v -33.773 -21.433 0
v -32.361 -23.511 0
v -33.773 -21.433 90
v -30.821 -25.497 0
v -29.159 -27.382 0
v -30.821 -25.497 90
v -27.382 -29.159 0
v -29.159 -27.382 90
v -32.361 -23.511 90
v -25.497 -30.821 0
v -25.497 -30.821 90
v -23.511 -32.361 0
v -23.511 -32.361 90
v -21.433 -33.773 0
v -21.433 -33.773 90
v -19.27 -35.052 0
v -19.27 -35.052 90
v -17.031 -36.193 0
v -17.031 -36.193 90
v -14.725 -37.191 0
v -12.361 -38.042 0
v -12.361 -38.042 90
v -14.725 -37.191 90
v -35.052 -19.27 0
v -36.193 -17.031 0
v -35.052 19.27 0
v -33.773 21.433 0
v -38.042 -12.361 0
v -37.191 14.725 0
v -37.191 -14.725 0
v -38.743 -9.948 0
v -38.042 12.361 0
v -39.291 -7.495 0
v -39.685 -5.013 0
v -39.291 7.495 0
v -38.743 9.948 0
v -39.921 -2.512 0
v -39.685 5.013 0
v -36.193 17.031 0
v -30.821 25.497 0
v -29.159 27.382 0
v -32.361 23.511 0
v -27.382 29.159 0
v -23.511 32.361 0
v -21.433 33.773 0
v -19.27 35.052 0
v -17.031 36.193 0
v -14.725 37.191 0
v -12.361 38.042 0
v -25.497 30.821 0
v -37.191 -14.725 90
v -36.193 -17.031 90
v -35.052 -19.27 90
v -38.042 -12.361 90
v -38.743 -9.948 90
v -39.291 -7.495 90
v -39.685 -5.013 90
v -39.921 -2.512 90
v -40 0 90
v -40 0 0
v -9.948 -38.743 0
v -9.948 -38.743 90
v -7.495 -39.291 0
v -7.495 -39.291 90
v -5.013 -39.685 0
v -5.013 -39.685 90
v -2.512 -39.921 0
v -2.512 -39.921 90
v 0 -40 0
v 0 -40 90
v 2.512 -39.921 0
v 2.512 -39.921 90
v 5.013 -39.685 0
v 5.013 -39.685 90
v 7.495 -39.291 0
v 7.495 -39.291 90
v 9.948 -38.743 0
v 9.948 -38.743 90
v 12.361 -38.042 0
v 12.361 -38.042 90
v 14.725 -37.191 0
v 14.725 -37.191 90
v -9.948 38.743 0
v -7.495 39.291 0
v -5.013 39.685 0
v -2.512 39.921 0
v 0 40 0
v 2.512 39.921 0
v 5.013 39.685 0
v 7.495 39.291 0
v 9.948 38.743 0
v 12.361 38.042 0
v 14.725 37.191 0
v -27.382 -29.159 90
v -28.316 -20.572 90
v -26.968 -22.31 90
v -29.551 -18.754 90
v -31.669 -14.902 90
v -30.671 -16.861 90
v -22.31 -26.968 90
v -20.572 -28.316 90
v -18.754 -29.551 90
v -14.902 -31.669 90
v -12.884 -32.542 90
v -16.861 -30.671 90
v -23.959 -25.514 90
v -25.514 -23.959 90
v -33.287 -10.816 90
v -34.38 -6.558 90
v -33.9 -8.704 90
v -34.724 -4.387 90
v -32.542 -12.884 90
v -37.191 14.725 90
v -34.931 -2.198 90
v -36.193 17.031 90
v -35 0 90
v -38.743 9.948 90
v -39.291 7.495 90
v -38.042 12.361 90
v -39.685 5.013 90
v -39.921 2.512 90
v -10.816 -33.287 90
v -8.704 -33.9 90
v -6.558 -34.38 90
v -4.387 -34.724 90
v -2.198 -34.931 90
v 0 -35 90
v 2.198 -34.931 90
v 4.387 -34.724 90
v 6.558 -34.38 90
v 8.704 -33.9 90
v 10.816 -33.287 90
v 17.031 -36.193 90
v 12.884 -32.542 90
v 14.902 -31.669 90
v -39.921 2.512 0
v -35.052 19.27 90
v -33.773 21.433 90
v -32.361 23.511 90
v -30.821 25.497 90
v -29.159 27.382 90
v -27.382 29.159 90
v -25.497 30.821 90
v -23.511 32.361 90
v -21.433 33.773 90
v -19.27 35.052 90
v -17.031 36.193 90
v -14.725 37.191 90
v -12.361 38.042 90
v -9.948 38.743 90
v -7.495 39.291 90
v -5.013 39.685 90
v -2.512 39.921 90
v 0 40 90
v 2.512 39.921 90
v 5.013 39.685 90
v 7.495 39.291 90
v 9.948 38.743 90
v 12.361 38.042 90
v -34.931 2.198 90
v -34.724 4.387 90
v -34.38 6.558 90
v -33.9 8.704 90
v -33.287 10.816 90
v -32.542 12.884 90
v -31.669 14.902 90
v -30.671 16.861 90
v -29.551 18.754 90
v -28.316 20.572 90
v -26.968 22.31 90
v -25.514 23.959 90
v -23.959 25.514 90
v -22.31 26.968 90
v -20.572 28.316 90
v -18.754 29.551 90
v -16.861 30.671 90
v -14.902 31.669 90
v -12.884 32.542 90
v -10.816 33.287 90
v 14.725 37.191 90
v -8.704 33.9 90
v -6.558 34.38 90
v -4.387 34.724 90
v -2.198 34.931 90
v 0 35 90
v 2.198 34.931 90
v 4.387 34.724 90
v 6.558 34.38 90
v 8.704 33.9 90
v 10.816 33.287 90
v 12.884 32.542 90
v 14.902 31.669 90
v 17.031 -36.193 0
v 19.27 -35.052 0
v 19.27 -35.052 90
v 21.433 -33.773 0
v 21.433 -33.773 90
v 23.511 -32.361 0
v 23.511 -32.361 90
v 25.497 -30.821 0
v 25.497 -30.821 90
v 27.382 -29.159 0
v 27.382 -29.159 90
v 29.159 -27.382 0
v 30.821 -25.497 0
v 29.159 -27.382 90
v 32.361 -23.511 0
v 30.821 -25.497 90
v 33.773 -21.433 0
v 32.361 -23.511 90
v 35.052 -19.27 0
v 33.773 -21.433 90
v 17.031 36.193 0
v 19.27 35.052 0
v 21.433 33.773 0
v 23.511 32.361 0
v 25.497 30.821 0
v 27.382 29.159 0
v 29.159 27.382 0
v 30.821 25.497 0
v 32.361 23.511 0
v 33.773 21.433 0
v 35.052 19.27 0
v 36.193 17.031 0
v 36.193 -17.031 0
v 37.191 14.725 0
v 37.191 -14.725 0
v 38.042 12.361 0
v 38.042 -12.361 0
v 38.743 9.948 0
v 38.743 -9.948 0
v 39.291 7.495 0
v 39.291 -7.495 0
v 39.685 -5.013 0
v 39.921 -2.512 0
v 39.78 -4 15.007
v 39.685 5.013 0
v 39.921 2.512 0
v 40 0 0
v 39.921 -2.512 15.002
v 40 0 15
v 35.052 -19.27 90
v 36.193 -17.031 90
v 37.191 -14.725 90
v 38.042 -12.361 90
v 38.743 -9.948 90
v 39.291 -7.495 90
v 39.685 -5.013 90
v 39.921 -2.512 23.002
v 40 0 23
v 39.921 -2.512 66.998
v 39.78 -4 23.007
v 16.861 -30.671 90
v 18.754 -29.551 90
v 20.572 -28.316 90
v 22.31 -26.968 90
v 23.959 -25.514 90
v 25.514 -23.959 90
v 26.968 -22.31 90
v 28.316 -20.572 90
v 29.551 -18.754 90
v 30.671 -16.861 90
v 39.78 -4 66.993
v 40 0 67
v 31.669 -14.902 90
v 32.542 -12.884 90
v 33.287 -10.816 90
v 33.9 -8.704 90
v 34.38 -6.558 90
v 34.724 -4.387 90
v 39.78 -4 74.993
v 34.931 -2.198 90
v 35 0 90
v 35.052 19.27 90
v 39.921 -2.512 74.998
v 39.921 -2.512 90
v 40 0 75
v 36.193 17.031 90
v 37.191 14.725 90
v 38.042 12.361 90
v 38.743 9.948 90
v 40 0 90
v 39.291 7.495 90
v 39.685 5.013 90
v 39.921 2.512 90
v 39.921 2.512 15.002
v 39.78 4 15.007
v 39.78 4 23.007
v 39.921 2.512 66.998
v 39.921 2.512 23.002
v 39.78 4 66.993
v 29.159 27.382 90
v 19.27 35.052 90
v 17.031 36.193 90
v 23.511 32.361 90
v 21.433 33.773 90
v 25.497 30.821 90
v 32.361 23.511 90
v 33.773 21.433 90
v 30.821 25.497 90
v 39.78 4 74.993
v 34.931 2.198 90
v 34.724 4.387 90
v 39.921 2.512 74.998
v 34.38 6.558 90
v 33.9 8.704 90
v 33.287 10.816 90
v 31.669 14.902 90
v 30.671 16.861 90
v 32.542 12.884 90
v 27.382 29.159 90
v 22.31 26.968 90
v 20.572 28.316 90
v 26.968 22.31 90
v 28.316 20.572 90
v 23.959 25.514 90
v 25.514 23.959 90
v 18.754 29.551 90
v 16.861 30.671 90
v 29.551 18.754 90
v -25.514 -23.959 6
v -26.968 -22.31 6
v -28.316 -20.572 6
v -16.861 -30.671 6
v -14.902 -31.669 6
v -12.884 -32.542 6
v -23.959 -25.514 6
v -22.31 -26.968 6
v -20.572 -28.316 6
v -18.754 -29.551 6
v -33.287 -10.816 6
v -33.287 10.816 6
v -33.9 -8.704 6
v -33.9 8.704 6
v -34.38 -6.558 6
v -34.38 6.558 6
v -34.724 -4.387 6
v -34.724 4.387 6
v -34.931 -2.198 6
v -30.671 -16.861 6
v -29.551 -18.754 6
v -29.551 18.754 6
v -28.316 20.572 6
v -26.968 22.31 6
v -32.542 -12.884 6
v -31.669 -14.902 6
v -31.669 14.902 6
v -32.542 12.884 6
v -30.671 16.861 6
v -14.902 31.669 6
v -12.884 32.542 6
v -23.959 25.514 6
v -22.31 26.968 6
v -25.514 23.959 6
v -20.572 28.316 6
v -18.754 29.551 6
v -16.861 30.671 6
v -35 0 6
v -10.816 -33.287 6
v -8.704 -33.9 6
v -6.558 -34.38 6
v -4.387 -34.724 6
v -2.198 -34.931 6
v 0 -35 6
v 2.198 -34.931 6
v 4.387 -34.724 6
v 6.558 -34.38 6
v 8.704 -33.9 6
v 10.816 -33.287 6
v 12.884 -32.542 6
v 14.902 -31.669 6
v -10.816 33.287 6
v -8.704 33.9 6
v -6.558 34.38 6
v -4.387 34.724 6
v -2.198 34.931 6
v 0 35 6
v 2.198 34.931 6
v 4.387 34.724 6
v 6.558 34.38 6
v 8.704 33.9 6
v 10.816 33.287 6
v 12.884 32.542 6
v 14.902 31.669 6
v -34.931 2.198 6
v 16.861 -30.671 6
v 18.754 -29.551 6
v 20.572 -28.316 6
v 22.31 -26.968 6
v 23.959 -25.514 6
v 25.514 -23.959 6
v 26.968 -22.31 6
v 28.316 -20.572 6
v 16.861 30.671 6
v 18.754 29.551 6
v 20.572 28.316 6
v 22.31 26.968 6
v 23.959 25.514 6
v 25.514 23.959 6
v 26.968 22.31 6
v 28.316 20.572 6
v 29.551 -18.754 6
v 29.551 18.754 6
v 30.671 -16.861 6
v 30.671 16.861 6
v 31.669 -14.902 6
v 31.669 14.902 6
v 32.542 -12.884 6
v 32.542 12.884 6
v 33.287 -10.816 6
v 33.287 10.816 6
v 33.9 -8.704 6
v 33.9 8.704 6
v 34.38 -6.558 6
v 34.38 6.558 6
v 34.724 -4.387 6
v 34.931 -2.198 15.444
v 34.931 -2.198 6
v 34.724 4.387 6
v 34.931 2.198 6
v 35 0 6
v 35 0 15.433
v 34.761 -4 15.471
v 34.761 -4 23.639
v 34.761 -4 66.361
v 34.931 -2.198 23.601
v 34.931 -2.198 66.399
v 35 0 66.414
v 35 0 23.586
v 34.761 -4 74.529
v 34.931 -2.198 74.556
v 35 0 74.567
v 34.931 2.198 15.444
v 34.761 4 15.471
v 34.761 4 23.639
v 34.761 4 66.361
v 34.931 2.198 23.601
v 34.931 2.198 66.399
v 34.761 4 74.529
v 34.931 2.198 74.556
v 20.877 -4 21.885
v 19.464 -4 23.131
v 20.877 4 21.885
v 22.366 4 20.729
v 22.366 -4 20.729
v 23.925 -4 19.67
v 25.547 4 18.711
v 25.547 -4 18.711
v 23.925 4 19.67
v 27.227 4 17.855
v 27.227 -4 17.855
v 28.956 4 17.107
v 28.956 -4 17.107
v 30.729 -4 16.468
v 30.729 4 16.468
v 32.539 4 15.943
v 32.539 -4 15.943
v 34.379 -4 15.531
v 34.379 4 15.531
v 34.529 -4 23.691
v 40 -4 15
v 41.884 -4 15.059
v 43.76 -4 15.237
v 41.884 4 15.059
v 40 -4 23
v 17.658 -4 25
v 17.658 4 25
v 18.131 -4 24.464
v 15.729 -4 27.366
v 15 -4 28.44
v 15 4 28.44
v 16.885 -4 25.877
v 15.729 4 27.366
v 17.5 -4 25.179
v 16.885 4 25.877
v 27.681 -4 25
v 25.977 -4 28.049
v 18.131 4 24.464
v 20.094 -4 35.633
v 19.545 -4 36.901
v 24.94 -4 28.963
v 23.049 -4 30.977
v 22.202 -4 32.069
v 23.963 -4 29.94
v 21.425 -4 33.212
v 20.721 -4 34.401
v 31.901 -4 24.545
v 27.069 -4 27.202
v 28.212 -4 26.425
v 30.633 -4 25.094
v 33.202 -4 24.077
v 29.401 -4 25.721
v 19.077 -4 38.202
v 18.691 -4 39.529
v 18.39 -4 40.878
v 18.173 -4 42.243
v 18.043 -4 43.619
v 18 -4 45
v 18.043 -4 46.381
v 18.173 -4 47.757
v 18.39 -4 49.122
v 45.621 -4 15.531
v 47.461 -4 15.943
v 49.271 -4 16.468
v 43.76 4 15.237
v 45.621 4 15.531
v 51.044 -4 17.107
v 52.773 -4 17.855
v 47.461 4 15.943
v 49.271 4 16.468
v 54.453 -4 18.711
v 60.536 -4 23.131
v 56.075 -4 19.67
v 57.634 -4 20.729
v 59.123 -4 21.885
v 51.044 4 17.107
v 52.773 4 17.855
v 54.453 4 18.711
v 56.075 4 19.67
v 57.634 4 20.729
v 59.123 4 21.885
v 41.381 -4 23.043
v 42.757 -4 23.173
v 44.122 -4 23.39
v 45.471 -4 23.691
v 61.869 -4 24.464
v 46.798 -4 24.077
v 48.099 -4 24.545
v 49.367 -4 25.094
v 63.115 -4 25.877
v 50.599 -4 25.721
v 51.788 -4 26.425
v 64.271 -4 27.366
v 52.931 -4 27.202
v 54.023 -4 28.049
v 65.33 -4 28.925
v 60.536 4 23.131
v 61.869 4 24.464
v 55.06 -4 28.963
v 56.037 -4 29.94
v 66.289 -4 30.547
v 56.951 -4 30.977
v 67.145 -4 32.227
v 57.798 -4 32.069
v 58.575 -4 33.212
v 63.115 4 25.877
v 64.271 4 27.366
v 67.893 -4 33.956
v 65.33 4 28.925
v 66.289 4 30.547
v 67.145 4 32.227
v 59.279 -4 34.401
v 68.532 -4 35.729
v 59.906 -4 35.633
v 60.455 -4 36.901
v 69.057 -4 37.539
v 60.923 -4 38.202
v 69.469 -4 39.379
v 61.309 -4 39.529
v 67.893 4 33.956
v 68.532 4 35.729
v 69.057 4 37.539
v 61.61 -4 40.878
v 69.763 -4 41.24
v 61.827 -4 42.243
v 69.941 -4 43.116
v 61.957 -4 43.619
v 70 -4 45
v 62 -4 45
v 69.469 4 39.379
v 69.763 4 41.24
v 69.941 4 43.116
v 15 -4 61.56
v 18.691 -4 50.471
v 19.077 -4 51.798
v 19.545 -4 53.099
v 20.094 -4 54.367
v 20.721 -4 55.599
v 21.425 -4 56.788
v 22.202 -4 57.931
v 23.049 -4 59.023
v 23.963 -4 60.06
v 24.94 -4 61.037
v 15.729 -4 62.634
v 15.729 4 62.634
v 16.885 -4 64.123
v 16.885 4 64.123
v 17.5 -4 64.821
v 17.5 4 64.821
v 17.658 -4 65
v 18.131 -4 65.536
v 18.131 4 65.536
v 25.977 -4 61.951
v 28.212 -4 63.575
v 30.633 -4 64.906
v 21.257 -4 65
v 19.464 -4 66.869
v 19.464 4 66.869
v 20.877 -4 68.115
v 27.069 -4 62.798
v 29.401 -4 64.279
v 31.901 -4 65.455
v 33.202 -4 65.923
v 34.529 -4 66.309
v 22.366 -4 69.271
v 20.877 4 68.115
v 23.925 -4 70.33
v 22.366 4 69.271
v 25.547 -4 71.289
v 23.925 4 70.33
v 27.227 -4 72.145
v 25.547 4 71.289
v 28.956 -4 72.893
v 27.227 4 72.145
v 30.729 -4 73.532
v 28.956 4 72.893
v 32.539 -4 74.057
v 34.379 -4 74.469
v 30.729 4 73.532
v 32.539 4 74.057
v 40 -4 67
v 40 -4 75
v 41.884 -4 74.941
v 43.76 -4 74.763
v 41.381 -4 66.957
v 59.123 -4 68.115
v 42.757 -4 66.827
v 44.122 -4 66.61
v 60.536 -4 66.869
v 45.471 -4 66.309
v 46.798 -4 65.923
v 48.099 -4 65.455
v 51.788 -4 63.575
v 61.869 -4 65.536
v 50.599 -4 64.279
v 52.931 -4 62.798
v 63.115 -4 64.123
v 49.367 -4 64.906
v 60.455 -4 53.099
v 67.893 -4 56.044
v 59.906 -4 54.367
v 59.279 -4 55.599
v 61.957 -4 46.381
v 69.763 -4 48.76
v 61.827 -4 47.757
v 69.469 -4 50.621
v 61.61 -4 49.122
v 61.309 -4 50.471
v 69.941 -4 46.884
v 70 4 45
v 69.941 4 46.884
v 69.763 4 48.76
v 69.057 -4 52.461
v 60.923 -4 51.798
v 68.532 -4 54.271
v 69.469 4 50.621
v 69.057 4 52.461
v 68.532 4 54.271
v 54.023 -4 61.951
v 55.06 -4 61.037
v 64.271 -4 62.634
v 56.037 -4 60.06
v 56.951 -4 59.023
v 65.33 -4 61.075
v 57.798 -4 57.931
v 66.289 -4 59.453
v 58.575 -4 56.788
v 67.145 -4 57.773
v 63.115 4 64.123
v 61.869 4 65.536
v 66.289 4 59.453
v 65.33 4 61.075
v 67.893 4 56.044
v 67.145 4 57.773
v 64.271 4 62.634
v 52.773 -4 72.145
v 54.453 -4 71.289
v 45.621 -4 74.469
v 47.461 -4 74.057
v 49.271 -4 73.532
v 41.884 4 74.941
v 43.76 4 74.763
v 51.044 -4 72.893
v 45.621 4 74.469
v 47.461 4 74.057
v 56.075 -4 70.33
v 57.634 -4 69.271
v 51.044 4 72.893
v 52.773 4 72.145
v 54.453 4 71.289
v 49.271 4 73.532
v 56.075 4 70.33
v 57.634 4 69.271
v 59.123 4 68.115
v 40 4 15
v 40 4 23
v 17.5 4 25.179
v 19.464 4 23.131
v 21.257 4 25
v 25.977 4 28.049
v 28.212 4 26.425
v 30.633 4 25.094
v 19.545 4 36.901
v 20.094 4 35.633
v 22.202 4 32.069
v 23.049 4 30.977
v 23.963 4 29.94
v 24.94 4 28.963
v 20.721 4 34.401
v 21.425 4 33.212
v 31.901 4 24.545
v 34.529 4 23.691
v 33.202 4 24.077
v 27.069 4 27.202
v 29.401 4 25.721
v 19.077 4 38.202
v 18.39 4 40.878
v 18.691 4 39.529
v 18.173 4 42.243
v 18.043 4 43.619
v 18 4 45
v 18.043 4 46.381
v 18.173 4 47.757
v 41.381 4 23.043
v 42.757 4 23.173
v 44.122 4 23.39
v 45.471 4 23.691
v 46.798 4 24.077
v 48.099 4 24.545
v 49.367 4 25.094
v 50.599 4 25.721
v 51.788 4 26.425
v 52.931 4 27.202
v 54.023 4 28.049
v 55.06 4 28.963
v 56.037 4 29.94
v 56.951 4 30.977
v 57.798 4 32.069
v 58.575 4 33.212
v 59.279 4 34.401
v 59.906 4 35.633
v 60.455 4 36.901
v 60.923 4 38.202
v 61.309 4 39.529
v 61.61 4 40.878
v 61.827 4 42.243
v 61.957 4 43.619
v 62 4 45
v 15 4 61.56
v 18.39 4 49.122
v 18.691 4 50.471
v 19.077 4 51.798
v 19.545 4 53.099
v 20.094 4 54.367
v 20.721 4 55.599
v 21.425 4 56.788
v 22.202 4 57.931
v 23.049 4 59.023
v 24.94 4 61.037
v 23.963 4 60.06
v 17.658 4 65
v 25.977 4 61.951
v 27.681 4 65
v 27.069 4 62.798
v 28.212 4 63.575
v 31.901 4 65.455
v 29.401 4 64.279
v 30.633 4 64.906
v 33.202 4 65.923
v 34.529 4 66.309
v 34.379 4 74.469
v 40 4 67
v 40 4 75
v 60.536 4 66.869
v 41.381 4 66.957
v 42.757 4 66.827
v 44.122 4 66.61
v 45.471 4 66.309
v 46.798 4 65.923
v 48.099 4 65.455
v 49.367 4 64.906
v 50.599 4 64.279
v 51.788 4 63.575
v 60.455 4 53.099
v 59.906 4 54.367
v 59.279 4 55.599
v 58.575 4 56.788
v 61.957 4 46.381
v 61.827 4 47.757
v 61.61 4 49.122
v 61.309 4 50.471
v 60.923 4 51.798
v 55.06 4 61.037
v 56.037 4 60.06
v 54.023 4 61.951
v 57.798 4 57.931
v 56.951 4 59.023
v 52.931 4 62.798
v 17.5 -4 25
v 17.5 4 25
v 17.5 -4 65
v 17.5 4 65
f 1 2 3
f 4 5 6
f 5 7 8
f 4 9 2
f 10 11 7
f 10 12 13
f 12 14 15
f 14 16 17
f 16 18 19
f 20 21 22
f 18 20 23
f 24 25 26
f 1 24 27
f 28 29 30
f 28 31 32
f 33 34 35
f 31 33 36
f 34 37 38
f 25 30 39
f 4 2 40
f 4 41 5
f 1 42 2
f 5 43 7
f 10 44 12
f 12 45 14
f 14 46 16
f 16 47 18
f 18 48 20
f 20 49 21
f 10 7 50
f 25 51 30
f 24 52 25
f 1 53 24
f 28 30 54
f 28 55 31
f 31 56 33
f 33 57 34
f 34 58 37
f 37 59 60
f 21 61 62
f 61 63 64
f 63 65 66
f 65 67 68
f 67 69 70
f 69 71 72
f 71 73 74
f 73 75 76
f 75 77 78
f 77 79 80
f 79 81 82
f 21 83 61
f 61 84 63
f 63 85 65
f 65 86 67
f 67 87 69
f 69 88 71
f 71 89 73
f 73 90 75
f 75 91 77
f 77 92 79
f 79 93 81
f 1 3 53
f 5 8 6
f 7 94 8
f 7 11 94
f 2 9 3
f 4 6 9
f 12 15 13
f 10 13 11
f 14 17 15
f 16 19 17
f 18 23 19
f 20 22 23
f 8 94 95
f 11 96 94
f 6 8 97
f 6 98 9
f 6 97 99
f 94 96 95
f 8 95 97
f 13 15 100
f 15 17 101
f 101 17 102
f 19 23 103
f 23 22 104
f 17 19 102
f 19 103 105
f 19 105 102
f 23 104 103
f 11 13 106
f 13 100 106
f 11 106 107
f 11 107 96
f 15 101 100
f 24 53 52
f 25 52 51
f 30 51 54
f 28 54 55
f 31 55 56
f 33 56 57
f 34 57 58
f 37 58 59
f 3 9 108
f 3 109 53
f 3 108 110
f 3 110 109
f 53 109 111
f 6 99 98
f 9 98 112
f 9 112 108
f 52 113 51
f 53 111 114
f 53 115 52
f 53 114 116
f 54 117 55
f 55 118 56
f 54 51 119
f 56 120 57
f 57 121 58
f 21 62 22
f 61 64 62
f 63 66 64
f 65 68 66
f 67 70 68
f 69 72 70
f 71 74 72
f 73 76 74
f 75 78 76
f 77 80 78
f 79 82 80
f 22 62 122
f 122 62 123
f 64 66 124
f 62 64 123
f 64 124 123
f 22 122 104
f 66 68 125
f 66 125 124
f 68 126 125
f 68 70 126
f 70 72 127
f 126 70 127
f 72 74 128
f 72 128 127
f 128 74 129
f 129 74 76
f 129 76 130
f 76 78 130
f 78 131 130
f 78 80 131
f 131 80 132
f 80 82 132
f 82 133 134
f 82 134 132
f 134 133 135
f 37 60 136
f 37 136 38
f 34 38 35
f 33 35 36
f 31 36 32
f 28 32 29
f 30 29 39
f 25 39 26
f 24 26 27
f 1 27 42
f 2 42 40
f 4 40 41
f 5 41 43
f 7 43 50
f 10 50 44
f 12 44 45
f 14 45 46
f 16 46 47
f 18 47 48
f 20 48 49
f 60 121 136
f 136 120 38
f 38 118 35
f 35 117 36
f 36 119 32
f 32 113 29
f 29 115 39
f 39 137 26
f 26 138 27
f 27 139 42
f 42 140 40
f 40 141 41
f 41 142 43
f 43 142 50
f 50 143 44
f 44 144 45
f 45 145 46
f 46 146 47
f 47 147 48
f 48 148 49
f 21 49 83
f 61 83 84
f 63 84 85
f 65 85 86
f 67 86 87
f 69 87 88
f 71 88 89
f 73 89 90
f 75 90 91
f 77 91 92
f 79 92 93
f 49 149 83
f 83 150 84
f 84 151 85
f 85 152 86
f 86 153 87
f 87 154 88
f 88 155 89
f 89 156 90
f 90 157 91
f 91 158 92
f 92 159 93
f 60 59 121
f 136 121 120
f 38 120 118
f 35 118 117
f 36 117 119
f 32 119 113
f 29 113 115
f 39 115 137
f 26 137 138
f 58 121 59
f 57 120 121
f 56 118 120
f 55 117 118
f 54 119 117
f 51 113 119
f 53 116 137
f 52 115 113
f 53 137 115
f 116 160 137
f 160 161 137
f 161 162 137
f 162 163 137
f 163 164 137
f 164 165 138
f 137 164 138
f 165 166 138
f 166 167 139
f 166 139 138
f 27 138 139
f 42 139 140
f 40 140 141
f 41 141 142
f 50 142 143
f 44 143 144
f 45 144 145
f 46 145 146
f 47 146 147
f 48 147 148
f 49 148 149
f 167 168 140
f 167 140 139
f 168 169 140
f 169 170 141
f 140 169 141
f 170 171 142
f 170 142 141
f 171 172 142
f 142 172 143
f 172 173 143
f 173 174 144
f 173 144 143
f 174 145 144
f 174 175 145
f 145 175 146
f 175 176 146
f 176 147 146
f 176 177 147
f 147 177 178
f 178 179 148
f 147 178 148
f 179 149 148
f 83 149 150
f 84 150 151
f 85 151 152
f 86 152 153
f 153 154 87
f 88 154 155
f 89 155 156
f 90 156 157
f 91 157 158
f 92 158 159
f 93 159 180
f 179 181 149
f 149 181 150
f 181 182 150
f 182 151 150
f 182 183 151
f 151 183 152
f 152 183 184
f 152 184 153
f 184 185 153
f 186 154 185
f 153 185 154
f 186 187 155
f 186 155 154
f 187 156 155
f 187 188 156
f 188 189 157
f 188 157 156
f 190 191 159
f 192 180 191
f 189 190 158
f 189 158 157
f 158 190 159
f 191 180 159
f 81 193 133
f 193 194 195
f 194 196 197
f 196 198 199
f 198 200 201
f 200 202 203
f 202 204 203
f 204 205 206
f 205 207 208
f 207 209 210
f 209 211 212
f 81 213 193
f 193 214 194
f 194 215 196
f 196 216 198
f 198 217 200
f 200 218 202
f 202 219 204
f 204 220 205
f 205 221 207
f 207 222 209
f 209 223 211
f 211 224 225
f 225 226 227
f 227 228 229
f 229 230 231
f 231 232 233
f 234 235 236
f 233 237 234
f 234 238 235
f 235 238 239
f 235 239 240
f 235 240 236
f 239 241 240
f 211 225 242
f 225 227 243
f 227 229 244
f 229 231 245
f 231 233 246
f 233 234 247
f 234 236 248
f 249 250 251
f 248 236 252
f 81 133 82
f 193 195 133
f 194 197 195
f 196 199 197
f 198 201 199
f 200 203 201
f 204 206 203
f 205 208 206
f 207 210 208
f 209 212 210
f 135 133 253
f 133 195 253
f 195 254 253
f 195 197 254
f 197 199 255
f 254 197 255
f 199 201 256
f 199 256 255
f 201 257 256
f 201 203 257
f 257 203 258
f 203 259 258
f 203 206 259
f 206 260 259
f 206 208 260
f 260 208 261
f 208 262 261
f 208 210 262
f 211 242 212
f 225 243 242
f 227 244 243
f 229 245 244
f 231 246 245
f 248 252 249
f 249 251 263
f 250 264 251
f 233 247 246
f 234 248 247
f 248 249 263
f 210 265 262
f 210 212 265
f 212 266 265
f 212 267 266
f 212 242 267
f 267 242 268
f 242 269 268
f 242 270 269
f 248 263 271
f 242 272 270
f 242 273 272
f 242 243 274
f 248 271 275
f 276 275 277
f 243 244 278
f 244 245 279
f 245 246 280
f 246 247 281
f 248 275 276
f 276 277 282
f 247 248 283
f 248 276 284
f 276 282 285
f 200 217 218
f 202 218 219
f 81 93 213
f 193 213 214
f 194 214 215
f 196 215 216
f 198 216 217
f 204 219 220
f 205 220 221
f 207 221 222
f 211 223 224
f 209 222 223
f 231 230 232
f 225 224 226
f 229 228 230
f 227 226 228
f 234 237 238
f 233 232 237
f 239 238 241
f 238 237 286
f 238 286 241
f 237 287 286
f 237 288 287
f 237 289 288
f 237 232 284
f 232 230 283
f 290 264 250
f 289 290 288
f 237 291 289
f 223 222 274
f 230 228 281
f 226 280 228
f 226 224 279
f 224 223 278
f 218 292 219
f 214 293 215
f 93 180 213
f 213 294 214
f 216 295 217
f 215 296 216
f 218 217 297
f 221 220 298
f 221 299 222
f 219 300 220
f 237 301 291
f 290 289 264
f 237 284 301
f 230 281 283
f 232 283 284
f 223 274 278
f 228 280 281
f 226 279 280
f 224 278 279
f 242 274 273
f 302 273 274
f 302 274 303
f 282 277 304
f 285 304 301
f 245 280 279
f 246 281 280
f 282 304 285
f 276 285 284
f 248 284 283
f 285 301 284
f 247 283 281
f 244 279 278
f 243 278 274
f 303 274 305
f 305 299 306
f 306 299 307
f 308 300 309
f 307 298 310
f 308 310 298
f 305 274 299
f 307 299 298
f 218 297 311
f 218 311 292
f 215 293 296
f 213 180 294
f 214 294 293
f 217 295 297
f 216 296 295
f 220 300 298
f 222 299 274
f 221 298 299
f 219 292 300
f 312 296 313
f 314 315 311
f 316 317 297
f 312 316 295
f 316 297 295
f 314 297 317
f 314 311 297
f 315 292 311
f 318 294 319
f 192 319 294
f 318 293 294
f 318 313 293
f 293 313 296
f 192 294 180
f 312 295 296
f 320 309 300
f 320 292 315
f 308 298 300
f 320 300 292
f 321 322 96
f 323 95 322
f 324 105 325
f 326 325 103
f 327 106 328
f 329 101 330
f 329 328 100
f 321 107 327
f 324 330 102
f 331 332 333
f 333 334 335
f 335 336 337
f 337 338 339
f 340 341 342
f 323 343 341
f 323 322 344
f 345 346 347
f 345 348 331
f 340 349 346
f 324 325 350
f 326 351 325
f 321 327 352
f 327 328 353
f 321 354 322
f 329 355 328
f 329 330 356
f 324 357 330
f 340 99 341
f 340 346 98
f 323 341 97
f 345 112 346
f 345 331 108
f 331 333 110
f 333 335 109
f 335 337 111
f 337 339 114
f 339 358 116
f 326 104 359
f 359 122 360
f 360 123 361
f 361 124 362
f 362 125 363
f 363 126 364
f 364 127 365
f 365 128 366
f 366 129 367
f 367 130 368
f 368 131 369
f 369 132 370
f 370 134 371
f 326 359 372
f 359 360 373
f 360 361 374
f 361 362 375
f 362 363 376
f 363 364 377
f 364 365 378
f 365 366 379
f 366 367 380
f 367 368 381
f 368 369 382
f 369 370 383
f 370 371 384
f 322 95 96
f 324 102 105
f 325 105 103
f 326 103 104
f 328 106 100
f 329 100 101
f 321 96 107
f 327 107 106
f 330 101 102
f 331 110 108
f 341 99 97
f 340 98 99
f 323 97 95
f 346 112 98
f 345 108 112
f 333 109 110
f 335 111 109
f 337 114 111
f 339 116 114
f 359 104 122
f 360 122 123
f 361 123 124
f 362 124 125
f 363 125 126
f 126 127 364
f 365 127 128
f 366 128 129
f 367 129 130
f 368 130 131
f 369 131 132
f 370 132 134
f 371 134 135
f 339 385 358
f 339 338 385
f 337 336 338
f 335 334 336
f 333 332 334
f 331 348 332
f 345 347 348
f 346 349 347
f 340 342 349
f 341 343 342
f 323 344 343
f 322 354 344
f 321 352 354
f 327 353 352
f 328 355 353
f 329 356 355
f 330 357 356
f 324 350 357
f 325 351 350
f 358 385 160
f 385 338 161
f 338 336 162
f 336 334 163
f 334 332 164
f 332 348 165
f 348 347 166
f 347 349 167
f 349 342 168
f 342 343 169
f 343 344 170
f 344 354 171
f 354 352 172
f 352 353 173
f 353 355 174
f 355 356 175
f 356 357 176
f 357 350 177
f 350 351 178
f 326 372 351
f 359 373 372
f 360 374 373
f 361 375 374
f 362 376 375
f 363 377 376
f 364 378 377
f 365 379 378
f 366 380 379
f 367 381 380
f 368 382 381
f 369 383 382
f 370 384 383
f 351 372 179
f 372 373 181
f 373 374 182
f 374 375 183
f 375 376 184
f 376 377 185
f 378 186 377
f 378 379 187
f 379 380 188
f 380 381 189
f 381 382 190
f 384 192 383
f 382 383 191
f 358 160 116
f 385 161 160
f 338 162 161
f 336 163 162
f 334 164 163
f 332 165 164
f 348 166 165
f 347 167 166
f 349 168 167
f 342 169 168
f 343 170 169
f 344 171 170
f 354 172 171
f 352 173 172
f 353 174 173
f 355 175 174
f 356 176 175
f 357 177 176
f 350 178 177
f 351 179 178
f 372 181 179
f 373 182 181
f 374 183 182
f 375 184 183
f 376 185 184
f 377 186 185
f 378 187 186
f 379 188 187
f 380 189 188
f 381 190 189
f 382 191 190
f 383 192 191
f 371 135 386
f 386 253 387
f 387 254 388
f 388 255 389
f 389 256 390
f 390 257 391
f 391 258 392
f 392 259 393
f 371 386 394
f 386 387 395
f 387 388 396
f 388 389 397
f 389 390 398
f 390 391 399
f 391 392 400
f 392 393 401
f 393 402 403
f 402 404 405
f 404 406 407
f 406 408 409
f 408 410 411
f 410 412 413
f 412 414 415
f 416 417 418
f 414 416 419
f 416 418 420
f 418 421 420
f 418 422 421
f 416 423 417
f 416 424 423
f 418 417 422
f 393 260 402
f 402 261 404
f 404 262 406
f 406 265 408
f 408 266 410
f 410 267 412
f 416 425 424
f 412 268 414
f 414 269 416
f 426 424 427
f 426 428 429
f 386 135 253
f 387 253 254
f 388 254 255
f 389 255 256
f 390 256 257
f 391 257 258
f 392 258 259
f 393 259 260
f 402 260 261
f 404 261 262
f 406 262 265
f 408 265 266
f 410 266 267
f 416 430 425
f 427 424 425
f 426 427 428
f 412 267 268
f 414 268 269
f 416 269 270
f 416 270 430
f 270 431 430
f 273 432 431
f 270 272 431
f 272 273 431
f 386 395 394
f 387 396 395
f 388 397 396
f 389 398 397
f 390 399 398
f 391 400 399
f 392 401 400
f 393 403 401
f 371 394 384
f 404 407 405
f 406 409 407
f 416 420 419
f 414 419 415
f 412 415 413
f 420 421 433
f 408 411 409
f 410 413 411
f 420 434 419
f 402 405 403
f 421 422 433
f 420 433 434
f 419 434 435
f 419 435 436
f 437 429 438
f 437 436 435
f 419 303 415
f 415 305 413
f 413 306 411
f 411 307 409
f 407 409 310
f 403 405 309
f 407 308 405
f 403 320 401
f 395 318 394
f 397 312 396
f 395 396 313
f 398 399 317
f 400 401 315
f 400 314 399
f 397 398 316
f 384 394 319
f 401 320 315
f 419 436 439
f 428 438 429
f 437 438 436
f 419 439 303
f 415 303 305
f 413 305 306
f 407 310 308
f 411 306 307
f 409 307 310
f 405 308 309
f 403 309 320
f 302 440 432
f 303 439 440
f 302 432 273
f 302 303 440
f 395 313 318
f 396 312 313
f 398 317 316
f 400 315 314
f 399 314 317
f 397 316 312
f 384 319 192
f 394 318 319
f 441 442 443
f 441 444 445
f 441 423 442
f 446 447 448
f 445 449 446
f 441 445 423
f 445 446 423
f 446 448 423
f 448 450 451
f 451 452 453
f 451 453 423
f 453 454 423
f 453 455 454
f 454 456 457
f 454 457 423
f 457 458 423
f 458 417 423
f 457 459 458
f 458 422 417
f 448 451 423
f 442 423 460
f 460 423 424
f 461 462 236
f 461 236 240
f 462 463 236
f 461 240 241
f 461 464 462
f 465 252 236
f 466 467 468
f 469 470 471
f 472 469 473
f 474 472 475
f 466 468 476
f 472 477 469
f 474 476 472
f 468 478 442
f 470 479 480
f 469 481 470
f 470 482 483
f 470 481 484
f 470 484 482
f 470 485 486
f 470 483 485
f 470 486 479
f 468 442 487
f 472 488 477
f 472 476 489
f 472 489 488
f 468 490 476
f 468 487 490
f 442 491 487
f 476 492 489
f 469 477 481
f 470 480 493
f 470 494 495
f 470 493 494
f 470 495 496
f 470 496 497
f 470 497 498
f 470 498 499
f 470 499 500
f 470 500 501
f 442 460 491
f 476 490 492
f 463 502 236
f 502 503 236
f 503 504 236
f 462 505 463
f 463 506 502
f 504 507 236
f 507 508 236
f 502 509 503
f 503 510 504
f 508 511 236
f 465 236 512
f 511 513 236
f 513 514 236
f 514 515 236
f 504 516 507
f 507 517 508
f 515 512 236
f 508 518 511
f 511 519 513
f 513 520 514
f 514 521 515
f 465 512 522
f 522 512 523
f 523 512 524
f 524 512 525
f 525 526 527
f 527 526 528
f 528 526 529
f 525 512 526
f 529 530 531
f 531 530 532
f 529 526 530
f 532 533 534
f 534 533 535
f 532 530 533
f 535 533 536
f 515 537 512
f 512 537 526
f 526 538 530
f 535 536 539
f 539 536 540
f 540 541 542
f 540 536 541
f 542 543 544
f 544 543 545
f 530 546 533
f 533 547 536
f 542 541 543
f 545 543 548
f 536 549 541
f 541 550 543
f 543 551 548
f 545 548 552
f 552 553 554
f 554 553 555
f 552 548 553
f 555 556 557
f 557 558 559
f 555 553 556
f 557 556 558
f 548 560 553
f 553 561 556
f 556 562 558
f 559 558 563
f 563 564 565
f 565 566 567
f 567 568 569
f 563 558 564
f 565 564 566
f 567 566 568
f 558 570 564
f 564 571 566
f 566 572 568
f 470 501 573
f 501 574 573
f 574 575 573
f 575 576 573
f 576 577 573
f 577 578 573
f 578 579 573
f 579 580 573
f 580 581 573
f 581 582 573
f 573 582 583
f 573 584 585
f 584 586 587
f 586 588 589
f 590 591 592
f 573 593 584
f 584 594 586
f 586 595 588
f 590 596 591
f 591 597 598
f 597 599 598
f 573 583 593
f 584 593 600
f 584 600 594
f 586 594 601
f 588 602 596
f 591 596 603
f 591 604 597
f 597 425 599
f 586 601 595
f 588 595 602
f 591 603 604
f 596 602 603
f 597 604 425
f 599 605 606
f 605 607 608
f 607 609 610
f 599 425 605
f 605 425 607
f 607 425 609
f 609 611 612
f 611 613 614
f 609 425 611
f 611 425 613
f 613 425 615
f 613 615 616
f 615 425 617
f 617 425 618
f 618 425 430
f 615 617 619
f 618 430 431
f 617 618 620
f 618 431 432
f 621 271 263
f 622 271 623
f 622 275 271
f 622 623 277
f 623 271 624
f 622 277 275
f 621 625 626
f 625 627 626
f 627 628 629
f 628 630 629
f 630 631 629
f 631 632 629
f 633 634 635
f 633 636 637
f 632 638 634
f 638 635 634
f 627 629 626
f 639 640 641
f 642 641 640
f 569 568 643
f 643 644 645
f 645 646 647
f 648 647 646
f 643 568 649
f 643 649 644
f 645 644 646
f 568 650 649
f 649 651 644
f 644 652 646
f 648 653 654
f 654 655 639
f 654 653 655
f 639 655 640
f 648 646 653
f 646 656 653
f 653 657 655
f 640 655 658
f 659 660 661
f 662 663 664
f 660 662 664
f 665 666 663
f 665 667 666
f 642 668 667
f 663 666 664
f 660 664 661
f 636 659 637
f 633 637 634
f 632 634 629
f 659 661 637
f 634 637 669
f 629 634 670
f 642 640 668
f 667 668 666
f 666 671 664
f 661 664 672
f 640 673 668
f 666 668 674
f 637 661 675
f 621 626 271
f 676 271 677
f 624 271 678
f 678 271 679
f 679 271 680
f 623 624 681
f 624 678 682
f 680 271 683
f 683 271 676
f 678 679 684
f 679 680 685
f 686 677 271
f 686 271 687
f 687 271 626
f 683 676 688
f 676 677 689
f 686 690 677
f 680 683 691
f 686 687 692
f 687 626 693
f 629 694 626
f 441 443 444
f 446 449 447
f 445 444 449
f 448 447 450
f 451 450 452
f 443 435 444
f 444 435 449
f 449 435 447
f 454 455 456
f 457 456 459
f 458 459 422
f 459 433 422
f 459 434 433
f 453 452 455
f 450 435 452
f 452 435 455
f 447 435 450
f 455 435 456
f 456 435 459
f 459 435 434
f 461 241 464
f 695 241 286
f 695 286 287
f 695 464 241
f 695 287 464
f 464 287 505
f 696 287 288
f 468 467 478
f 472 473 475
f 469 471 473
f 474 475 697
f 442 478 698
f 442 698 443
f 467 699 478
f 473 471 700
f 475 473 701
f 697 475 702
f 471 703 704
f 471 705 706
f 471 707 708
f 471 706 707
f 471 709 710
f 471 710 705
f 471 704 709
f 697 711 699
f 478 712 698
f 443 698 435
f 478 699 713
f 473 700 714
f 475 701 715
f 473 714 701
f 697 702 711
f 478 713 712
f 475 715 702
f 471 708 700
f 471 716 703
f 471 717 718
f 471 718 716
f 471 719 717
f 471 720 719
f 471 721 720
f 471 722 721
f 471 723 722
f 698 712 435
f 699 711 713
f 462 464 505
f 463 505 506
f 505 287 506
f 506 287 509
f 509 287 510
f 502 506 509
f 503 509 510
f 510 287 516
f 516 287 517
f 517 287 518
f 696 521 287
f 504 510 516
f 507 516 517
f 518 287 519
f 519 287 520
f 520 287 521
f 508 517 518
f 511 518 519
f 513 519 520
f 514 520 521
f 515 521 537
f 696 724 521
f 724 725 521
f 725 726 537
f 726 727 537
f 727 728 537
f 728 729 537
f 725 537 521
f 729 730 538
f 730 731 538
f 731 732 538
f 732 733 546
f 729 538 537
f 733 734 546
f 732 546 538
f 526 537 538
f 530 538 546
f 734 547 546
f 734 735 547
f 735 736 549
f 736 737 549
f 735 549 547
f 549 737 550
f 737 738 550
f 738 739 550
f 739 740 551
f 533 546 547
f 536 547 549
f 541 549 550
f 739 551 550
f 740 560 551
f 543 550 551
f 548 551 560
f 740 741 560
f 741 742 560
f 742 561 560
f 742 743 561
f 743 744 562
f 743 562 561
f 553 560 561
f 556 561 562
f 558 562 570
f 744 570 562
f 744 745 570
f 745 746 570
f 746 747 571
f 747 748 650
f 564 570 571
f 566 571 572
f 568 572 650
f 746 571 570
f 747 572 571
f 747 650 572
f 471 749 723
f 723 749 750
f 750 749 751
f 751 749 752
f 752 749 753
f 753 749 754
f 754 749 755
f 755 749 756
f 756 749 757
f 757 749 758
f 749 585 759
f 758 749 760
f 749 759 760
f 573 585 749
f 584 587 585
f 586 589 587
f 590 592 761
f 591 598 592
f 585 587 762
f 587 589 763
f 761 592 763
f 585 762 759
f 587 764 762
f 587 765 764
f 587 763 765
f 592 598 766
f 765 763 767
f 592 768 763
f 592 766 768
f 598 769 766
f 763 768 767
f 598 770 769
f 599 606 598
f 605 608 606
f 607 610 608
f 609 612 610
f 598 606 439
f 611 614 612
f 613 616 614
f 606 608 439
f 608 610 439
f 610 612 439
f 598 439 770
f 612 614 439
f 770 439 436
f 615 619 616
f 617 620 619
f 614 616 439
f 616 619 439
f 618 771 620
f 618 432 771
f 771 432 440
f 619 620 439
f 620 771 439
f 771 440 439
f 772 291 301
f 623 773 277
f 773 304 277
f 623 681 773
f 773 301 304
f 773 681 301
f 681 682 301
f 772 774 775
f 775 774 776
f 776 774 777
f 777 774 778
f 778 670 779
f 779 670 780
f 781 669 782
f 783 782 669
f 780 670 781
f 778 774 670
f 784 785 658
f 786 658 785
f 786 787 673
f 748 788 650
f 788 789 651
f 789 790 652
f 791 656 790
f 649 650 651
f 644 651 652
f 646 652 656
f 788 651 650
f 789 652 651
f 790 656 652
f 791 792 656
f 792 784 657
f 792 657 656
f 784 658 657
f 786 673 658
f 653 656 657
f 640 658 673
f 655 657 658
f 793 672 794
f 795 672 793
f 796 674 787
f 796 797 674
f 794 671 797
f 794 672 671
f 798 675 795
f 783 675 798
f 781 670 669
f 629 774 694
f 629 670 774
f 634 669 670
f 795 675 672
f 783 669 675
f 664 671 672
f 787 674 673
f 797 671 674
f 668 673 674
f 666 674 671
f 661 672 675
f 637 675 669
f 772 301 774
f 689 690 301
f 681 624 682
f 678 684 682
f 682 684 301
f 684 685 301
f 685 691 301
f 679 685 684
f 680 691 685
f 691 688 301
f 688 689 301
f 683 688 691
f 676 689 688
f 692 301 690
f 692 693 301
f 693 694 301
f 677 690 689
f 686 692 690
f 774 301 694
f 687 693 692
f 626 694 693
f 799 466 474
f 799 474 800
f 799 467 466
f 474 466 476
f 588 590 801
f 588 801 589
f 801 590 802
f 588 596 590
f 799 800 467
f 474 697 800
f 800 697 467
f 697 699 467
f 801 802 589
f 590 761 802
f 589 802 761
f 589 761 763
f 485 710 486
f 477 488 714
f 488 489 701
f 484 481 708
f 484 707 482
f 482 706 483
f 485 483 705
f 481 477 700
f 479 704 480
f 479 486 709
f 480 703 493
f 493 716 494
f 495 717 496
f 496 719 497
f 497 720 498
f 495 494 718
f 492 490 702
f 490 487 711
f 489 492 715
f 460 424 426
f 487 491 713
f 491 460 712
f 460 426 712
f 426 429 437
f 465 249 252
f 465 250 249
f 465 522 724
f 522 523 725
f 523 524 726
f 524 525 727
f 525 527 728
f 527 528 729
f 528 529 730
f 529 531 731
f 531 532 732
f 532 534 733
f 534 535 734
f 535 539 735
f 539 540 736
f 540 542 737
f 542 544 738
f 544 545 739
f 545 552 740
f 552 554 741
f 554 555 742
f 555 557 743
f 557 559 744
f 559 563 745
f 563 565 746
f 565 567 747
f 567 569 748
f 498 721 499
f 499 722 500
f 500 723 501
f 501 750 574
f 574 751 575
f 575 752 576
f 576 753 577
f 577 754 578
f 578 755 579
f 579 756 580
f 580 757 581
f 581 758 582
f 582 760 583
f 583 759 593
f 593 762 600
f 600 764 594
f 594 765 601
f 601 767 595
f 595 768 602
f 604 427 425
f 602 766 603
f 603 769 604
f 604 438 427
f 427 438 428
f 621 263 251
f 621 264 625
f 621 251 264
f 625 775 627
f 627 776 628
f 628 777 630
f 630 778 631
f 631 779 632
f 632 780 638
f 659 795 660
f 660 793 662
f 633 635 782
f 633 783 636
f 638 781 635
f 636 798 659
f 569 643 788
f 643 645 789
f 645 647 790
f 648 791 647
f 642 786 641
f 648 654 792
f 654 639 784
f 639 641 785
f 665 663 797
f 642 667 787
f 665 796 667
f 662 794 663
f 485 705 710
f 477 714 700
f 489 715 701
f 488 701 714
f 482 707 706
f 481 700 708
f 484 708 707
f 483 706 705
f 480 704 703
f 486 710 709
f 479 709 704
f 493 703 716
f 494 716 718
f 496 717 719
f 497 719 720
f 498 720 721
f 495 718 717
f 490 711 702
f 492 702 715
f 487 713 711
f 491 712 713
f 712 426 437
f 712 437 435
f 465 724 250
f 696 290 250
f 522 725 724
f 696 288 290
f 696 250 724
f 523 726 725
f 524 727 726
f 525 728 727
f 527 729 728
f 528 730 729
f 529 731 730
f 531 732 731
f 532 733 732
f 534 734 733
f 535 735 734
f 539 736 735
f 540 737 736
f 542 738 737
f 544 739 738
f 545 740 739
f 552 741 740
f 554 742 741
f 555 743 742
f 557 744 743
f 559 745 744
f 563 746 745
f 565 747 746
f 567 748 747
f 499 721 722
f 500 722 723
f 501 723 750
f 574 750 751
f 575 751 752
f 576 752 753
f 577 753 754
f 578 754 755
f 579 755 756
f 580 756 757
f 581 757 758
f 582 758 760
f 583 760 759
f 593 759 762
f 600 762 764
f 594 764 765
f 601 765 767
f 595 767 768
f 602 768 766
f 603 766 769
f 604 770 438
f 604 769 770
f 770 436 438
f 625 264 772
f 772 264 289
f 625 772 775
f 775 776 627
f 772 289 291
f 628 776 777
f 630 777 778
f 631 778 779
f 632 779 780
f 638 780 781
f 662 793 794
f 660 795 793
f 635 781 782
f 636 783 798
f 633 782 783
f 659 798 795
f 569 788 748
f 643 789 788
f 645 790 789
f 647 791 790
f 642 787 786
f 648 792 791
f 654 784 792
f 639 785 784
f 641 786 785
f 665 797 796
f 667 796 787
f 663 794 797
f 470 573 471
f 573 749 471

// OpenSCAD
$fn = 100;

// マグカップ本体
difference() {
    // 外側の円筒
    cylinder(h = 90, r = 40, center = false);
    // 内側をくり抜く
    translate([0, 0, 6])
        cylinder(h = 90, r = 35, center = false);
}

// 取手（+X方向）
translate([40, 0, 45]) {
    difference() {
        union() {
            // 取手の外側形状
            rotate([90, 0, 0])
                cylinder(h = 8, r = 30, center = true);
            // 本体との接続部分
            translate([-15, 0, 0])
                cube([15, 8, 40], center = true);
        }
        // 取手の内側をくり抜く
        rotate([90, 0, 0])
            cylinder(h = 10, r = 22, center = true);
        // 本体側を切り取る
        translate([-50, 0, 0])
            cube([50, 20, 80], center = true);
    }
}
